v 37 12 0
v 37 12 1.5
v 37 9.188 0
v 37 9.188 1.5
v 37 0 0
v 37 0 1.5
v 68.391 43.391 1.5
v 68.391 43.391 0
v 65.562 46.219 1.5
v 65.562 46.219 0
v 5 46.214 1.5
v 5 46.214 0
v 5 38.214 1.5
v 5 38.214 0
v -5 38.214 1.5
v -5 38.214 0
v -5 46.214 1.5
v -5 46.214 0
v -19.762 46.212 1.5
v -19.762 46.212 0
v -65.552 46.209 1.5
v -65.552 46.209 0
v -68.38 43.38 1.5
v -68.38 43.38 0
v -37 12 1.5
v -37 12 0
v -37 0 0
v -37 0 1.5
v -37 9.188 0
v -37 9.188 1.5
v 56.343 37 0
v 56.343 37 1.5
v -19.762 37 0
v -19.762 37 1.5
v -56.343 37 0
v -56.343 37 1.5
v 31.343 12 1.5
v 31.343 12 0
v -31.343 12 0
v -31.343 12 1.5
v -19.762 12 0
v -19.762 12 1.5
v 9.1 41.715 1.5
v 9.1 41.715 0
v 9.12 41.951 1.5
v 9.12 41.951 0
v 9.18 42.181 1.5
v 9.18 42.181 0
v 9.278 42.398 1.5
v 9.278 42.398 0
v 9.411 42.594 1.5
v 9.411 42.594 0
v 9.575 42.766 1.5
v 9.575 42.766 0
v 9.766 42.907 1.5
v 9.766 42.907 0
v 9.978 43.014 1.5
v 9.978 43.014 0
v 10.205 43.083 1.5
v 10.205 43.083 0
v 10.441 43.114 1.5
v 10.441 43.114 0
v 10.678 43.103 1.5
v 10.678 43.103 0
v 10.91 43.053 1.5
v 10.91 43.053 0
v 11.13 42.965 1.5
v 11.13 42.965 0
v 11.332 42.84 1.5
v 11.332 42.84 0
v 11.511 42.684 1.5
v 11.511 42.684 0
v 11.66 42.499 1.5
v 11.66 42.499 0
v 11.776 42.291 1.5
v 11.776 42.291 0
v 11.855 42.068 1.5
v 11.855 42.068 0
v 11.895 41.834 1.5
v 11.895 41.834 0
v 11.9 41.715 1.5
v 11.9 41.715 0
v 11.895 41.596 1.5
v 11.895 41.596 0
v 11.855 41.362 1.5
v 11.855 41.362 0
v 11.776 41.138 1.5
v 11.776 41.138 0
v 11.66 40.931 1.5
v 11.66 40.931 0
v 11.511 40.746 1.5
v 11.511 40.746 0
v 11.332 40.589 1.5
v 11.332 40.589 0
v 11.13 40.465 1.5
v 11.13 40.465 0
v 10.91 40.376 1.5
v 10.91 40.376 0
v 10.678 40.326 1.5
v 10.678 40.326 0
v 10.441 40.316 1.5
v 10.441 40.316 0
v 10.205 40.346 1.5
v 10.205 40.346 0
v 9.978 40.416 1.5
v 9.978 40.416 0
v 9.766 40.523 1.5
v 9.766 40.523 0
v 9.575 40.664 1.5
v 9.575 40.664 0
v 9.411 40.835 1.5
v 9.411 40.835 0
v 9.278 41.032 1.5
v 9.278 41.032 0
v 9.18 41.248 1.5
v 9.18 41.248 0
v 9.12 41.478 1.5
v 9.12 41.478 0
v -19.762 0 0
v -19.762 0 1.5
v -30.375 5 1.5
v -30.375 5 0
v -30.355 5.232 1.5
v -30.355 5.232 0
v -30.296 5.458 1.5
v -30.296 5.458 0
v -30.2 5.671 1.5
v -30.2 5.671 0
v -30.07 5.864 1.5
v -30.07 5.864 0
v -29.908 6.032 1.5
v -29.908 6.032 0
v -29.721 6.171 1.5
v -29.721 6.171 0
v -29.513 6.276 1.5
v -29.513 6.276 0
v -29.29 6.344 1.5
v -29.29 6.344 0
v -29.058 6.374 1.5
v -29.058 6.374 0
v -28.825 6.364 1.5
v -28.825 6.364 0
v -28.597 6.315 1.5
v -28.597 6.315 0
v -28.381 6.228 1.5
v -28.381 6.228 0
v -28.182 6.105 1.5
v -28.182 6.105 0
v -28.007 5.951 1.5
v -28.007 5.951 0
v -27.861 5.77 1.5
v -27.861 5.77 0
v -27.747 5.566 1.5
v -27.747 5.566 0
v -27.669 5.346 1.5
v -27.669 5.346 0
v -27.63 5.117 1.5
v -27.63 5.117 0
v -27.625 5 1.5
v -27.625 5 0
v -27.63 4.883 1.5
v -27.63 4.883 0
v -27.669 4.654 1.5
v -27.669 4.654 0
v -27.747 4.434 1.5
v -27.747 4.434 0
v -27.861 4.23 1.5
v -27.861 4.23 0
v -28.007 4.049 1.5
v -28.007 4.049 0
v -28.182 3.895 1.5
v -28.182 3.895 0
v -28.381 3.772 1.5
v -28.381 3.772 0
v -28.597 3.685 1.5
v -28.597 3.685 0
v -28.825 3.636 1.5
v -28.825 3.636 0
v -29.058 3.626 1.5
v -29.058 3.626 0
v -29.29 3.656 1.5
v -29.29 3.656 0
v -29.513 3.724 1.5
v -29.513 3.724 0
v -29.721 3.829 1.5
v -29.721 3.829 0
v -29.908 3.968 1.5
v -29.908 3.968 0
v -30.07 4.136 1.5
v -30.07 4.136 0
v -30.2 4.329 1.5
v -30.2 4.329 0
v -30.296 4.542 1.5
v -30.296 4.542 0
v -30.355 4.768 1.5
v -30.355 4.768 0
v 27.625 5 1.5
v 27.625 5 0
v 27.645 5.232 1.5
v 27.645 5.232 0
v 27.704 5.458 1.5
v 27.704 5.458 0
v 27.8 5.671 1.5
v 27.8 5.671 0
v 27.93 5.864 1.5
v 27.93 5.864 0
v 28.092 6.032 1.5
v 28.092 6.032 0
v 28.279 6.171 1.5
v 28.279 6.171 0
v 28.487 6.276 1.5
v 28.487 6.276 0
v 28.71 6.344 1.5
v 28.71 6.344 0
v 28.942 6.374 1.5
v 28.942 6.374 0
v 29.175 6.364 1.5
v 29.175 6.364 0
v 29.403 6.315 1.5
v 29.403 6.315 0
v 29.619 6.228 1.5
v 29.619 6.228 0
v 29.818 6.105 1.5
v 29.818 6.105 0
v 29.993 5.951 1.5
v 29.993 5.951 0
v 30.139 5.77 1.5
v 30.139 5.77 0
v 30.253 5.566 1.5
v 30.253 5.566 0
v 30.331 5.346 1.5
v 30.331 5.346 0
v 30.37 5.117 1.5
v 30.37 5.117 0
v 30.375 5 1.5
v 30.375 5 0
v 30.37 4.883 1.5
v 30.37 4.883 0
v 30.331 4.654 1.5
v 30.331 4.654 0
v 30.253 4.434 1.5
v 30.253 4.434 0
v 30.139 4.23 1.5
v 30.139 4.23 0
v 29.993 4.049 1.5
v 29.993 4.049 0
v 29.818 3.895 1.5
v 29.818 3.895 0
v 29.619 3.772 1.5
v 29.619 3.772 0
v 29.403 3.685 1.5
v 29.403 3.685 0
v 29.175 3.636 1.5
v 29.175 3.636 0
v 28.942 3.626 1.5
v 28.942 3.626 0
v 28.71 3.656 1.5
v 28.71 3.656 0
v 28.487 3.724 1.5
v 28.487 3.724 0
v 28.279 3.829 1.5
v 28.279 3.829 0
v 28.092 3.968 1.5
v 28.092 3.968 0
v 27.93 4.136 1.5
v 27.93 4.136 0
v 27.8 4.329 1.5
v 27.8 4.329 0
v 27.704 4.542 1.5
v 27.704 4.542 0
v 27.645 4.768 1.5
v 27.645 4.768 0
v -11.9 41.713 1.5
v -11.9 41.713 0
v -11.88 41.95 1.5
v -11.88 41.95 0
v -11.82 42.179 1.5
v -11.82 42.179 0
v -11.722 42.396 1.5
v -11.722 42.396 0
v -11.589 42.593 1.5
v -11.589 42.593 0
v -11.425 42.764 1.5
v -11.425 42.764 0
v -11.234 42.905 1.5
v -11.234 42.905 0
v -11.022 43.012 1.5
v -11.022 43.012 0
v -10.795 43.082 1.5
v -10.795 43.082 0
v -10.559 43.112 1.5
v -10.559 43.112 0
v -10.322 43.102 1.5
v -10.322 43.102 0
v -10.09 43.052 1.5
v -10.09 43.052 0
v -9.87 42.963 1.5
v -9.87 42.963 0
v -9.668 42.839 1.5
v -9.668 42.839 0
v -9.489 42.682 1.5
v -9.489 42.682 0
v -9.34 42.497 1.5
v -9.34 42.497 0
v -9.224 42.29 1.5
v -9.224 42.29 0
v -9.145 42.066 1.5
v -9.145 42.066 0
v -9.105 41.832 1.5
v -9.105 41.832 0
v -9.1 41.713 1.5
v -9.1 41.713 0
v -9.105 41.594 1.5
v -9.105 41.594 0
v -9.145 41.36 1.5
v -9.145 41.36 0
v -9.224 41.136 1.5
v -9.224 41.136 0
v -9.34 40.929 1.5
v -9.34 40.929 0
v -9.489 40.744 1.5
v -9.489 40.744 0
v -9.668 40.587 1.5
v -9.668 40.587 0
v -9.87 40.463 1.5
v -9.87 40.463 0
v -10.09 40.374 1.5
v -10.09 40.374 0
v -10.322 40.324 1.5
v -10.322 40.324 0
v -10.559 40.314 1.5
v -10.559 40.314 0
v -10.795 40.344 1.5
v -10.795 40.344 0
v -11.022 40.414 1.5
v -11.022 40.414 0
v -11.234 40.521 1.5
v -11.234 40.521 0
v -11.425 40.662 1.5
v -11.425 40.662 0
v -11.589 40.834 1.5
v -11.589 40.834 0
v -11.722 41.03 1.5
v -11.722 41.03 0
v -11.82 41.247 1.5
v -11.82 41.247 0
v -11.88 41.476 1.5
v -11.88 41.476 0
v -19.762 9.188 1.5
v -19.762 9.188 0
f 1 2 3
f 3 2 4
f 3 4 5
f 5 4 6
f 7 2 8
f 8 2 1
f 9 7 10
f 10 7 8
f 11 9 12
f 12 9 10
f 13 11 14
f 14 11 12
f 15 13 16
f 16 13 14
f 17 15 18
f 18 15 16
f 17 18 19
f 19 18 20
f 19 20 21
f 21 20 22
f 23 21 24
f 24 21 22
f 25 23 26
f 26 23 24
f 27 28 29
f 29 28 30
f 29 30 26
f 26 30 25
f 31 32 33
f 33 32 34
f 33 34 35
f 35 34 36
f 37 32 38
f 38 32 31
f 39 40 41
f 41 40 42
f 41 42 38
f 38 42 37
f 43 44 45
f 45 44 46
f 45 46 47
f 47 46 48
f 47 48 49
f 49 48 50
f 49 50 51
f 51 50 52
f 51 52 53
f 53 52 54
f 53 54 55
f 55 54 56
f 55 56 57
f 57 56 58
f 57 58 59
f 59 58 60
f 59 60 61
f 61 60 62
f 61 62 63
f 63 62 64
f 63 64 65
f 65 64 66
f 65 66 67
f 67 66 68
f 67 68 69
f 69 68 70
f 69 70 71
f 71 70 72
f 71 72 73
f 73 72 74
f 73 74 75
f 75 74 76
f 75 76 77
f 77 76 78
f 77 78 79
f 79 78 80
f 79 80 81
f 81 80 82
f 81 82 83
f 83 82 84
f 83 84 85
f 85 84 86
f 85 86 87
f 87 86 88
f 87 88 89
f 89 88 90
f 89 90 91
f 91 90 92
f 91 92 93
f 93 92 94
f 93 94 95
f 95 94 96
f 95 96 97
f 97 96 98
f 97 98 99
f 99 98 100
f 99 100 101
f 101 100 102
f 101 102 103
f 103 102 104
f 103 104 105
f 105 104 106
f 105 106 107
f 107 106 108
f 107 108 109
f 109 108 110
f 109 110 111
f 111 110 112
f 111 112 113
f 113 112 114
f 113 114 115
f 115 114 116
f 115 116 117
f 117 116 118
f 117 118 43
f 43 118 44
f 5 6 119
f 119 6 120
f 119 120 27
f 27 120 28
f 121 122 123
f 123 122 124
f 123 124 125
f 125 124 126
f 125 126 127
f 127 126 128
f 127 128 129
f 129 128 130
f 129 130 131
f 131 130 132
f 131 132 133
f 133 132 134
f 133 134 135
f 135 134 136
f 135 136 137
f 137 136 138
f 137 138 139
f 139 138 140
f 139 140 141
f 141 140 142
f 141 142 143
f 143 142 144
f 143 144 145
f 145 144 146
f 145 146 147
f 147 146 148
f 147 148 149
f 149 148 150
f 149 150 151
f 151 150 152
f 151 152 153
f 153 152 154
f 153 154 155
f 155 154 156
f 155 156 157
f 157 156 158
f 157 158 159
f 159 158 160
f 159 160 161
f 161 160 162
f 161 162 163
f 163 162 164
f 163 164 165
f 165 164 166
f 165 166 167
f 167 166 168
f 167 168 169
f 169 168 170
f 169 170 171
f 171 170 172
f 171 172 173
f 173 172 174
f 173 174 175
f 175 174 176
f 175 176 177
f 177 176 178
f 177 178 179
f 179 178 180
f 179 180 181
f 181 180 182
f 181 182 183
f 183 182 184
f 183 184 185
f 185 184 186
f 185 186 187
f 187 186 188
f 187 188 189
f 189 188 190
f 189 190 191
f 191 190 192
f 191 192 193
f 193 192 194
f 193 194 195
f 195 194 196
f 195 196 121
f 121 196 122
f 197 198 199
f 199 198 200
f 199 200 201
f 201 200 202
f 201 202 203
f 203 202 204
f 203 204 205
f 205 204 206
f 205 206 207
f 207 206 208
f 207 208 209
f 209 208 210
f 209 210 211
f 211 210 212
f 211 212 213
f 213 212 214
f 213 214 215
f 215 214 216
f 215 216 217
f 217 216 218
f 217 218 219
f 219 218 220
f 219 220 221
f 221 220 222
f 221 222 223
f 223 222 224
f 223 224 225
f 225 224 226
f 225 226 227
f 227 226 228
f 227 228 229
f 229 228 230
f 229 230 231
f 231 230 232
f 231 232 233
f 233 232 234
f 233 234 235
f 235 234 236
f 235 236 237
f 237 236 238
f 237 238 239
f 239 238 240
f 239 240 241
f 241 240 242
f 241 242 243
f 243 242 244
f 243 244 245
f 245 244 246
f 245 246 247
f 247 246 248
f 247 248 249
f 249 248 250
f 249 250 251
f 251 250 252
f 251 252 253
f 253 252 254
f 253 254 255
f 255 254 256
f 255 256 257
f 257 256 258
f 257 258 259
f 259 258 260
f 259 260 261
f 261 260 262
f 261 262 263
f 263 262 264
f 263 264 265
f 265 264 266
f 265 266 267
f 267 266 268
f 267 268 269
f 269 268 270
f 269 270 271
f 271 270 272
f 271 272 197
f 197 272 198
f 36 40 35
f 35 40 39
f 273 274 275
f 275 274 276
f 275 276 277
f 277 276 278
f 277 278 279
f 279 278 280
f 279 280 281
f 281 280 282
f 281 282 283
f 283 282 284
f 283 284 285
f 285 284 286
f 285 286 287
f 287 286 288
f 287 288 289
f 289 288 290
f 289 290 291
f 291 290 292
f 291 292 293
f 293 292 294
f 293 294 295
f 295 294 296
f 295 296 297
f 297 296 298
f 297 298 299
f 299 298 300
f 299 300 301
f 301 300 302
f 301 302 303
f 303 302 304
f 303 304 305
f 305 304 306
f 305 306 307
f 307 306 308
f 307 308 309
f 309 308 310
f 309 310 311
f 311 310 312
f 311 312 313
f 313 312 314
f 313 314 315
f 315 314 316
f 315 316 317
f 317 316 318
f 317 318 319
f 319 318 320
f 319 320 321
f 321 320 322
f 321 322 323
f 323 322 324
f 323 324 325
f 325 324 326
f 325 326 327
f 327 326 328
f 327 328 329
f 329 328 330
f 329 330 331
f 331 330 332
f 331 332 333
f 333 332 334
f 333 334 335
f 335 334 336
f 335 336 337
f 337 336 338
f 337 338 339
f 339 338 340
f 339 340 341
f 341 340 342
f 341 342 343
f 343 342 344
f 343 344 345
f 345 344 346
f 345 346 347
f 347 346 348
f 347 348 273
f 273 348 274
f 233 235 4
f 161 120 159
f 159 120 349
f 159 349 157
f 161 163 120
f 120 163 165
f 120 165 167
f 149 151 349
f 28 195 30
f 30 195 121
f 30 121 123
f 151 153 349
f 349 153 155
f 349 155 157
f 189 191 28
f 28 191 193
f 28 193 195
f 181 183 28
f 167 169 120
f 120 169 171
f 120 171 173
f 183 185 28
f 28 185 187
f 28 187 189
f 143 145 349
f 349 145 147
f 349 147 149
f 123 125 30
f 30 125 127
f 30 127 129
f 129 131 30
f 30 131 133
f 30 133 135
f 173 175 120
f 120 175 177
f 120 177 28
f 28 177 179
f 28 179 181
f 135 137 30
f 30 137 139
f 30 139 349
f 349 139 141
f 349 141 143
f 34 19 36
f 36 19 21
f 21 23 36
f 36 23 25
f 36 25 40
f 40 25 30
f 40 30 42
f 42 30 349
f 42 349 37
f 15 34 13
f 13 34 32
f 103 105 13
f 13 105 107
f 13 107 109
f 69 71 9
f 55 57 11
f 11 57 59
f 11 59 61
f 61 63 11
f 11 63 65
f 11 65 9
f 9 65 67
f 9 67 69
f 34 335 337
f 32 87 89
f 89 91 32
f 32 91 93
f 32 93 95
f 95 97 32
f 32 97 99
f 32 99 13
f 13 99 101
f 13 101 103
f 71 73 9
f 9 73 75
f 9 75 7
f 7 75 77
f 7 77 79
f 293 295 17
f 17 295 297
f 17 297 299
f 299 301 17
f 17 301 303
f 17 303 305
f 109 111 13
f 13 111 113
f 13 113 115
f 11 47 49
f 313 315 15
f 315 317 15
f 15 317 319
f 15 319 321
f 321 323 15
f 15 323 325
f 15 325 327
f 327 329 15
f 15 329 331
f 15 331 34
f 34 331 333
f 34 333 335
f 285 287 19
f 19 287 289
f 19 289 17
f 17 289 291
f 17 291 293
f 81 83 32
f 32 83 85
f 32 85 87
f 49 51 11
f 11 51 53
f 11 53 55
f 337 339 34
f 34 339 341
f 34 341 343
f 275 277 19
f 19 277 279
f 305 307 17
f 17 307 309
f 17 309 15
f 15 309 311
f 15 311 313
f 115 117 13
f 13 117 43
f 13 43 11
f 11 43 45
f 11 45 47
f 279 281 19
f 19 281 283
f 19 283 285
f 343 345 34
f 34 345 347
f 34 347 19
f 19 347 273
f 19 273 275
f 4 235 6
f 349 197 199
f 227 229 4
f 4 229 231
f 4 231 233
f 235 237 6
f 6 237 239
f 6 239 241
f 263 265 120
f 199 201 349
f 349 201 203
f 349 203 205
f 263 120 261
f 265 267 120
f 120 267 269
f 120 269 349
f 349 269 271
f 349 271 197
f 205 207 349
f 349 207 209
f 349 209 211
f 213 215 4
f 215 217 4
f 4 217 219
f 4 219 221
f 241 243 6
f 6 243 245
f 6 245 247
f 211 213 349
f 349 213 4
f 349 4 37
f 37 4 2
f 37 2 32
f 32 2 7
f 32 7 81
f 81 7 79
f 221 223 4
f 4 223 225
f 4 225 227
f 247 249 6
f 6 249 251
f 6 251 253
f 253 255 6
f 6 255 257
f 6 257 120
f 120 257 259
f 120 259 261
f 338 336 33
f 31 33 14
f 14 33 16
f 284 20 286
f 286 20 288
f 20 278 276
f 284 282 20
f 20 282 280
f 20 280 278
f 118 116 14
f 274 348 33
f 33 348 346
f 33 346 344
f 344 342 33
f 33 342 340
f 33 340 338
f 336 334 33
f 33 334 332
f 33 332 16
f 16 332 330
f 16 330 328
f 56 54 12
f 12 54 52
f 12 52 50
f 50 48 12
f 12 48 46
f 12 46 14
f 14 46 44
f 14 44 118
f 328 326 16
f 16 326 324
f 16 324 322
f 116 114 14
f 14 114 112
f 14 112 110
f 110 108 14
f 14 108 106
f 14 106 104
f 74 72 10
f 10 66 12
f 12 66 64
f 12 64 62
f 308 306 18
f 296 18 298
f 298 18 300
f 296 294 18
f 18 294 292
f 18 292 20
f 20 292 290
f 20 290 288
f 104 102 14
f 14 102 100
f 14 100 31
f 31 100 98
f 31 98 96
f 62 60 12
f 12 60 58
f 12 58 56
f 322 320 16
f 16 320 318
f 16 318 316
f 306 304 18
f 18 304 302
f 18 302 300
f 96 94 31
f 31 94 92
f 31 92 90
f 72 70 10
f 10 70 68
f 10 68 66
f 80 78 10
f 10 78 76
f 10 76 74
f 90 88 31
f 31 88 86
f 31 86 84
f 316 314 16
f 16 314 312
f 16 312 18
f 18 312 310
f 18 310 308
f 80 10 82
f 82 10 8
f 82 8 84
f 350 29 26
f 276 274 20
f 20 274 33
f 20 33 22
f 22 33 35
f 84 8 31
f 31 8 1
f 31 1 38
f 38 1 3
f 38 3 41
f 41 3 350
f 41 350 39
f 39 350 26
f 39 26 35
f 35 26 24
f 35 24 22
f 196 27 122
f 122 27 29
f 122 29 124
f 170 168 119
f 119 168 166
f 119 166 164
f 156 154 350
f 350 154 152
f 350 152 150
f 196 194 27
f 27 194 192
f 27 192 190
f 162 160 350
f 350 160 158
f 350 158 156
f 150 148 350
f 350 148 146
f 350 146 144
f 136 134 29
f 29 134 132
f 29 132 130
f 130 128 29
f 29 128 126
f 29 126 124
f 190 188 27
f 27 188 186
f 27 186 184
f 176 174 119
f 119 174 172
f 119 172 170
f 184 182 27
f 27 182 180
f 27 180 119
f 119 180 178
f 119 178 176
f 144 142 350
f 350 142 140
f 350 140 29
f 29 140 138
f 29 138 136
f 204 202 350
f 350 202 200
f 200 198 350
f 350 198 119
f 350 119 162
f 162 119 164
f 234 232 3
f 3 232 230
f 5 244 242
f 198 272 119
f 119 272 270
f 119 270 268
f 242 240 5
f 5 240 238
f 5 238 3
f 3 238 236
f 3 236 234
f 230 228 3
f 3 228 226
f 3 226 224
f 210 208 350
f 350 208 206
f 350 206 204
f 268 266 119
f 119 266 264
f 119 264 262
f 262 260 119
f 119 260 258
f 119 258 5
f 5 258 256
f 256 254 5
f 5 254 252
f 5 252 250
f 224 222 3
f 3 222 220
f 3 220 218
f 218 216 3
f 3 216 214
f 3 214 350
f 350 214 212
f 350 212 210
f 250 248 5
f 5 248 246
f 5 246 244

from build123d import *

# Parameters (mm, degrees)
SKETCH1_R           = 1.375
SKETCH1_R_2         = 1.4
BOSS_EXTRUDE1_DEPTH = 1.5


with BuildPart() as part:
    # Sketch1 → Boss-Extrude1 (new body)
    # profile 1 of 2: a face of its own
    with BuildSketch(Plane.XY):
        Polygon((37, 12), (37, 0), (-37, 0), (-37, 12), (-68.380126203, 43.380126203), (-65.551699078, 46.208553328), (-31.343145751, 12), (31.343145751, 12), (65.562445841, 46.21930009), (68.390872965, 43.390872965), align=None)
        with Locations((29, 5)):
            Circle(SKETCH1_R, mode=Mode.SUBTRACT)
        with Locations((-29, 5)):
            Circle(SKETCH1_R, mode=Mode.SUBTRACT)
    # profile 2 of 2: a face of its own
    with BuildSketch(Plane.XY):
        Polygon((-5, 46.213516444), (-65.551699078, 46.208553328), (-56.343145751, 37), (56.343145751, 37), (65.562445841, 46.21930009), (5, 46.214336093), (5, 38.213516444), (-5, 38.213516444), align=None)
        with Locations((-10.5, 41.713065622)):
            Circle(SKETCH1_R_2, mode=Mode.SUBTRACT)
        with Locations((10.499999929, 41.714786885)):
            Circle(SKETCH1_R_2, mode=Mode.SUBTRACT)
    extrude(amount=BOSS_EXTRUDE1_DEPTH)


solid = part.part
